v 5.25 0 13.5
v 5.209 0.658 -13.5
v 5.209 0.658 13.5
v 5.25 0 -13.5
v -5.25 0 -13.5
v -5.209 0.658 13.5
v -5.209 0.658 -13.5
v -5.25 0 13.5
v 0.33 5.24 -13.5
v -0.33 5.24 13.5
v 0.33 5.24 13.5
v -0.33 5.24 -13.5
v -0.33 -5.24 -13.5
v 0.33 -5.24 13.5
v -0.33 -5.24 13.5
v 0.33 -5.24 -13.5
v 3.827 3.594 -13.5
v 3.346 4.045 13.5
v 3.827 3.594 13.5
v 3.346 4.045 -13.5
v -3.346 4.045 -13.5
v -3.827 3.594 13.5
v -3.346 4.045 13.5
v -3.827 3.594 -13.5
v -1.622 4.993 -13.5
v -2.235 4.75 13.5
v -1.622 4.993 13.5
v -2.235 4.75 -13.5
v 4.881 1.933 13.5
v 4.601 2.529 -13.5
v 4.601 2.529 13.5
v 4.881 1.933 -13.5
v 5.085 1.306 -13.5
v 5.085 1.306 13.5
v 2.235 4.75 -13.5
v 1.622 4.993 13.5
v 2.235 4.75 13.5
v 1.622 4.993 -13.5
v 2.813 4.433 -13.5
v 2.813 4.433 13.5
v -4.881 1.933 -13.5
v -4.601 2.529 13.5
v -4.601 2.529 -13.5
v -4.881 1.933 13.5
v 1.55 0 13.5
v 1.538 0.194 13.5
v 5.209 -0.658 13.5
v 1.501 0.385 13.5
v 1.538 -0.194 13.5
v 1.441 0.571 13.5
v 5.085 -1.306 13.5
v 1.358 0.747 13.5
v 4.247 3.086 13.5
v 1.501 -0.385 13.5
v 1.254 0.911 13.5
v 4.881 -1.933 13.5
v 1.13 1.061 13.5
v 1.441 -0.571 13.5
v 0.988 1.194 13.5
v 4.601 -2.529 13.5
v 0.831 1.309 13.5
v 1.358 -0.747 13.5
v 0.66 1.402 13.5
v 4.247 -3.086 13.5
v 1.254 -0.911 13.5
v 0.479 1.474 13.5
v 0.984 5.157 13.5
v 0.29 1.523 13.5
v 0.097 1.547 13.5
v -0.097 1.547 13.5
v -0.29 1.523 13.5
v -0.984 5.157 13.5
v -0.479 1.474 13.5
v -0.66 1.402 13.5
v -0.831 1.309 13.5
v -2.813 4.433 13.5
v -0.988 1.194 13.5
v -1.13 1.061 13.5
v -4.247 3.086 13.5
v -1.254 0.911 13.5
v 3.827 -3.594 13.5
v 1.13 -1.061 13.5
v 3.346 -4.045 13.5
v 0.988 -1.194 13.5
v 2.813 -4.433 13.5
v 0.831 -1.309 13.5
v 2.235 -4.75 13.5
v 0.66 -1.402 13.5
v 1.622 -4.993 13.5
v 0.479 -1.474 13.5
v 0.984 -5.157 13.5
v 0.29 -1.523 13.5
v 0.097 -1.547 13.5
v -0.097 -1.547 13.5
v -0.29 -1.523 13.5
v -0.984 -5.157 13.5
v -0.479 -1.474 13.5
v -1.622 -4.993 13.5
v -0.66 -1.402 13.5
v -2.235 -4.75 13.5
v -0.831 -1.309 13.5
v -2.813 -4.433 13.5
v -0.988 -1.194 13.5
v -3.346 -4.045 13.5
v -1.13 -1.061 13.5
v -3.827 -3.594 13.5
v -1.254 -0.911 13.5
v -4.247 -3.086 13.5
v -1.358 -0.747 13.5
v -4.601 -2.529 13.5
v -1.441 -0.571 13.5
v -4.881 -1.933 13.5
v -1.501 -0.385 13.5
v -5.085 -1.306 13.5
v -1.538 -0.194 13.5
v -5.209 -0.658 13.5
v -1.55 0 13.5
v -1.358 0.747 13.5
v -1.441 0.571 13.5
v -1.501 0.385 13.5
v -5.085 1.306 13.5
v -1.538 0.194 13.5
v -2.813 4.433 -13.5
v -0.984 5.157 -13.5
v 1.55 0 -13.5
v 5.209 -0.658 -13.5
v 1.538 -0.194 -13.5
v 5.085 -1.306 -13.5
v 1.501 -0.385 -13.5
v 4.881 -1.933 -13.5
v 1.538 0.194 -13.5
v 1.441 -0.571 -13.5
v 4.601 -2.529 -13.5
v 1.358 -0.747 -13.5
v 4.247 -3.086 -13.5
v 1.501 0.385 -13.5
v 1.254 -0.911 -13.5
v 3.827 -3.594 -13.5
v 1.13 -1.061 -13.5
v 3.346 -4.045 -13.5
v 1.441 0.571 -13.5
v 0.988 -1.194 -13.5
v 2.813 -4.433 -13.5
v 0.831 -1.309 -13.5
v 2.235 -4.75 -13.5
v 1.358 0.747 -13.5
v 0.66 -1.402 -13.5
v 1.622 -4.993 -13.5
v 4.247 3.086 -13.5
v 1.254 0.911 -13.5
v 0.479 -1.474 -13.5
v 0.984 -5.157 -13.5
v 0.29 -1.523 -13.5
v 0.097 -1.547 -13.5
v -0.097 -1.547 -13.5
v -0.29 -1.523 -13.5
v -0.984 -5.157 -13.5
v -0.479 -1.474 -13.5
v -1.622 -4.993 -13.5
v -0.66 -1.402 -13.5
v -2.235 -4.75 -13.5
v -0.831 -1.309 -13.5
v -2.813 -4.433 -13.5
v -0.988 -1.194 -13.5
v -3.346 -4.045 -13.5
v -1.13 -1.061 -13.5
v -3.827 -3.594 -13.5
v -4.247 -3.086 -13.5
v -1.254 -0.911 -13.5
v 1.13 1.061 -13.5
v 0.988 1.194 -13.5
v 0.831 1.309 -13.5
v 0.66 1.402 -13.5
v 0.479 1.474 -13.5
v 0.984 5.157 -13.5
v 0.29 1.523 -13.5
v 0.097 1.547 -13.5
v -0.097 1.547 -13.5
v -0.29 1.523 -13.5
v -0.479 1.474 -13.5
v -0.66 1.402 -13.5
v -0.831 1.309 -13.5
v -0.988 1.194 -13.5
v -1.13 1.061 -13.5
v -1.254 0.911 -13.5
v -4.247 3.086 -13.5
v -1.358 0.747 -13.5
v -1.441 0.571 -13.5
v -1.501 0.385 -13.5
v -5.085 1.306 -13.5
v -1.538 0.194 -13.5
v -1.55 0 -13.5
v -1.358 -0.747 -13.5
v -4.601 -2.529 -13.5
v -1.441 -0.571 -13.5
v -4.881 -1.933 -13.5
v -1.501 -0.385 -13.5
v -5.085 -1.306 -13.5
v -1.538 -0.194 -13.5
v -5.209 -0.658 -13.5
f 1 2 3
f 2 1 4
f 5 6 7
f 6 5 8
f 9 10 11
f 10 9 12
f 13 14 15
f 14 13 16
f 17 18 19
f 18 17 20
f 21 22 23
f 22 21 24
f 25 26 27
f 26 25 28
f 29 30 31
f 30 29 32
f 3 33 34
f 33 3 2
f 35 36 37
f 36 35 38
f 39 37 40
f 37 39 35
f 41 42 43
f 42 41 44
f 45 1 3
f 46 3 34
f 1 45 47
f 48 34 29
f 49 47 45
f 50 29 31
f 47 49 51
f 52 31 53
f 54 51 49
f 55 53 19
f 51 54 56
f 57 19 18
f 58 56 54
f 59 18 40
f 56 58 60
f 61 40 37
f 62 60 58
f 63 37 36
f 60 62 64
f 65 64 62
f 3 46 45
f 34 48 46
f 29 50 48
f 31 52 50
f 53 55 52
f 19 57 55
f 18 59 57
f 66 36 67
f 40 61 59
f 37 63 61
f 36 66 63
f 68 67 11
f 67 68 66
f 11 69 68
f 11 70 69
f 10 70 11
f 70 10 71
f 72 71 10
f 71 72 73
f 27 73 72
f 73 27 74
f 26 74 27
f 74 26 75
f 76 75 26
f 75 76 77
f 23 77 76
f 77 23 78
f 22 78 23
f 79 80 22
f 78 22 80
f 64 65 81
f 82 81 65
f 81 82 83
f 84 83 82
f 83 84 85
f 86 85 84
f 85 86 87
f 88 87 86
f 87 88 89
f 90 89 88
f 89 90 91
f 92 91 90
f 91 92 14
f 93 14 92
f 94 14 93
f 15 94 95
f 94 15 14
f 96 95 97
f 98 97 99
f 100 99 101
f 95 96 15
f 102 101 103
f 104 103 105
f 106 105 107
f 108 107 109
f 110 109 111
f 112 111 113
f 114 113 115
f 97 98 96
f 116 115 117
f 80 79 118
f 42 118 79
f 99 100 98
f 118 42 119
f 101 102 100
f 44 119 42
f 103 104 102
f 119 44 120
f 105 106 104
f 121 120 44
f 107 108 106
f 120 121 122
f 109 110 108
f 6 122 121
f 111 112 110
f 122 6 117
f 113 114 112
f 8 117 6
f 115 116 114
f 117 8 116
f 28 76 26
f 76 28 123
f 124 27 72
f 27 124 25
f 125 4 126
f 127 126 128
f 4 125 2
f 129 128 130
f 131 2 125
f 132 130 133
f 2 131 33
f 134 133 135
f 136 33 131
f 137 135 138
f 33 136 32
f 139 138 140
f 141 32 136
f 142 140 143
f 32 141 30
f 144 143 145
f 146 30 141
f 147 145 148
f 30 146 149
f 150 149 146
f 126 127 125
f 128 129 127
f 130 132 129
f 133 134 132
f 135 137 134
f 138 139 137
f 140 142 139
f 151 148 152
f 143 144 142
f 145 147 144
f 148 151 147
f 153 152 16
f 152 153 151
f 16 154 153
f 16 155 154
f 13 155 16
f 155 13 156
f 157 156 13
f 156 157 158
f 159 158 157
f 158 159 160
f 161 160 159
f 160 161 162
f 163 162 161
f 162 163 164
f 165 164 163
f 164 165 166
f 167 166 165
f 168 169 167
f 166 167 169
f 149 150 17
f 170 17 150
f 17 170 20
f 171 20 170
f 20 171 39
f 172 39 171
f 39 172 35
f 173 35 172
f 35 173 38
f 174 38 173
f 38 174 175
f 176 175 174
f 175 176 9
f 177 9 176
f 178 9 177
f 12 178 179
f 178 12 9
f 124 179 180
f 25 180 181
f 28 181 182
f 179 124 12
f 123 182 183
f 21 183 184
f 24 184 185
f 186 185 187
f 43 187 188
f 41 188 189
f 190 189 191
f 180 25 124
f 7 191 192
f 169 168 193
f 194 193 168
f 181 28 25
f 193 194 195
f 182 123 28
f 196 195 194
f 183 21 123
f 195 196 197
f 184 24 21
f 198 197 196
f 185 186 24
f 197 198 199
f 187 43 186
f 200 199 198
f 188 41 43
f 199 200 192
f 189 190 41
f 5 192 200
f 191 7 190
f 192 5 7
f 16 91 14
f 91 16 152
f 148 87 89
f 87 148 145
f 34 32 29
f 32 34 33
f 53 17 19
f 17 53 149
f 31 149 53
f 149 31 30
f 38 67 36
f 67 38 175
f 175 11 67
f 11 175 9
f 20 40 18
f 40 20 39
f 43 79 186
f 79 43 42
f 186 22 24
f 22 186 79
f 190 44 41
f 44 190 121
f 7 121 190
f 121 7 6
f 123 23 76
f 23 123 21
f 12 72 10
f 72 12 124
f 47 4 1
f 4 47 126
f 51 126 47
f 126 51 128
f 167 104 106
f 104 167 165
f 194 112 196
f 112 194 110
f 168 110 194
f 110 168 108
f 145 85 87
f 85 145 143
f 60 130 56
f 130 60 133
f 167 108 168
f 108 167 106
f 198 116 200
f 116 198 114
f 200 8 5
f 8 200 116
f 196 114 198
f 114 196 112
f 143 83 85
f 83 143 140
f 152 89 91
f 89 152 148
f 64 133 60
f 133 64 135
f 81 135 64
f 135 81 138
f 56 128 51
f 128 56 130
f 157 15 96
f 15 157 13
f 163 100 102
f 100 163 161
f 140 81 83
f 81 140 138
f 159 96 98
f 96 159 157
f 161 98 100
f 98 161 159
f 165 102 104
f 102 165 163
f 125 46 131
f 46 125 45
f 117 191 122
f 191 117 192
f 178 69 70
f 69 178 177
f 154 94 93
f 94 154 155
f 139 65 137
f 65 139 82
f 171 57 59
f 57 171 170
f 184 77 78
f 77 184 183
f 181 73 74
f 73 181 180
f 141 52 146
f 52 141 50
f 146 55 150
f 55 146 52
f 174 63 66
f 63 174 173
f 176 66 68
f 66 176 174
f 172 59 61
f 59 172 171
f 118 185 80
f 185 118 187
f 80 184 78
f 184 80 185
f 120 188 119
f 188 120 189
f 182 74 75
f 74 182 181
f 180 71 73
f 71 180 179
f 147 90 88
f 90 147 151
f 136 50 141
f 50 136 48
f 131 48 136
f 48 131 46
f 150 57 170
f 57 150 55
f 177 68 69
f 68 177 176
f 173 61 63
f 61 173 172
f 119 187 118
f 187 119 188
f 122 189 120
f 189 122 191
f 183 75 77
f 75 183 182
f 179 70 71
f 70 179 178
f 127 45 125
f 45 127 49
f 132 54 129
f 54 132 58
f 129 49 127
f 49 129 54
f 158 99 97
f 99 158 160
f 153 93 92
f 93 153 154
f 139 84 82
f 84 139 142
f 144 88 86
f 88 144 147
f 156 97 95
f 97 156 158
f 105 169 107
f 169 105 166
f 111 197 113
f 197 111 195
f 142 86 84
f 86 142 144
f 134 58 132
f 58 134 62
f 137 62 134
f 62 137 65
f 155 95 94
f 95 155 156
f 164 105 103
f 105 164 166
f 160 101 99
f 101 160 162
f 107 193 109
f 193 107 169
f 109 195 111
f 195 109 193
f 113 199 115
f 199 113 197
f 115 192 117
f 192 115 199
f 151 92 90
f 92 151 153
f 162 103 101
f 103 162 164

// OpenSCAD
$fn = 50;


difference() {
	union() {
		translate(v = [0, 0, -13.5000000000]) {
			cylinder(h = 27, r = 5.2500000000);
		}
	}
	union() {
		translate(v = [0, 0, -100.0000000000]) {
			cylinder(h = 200, r = 1.5500000000);
		}
	}
}
